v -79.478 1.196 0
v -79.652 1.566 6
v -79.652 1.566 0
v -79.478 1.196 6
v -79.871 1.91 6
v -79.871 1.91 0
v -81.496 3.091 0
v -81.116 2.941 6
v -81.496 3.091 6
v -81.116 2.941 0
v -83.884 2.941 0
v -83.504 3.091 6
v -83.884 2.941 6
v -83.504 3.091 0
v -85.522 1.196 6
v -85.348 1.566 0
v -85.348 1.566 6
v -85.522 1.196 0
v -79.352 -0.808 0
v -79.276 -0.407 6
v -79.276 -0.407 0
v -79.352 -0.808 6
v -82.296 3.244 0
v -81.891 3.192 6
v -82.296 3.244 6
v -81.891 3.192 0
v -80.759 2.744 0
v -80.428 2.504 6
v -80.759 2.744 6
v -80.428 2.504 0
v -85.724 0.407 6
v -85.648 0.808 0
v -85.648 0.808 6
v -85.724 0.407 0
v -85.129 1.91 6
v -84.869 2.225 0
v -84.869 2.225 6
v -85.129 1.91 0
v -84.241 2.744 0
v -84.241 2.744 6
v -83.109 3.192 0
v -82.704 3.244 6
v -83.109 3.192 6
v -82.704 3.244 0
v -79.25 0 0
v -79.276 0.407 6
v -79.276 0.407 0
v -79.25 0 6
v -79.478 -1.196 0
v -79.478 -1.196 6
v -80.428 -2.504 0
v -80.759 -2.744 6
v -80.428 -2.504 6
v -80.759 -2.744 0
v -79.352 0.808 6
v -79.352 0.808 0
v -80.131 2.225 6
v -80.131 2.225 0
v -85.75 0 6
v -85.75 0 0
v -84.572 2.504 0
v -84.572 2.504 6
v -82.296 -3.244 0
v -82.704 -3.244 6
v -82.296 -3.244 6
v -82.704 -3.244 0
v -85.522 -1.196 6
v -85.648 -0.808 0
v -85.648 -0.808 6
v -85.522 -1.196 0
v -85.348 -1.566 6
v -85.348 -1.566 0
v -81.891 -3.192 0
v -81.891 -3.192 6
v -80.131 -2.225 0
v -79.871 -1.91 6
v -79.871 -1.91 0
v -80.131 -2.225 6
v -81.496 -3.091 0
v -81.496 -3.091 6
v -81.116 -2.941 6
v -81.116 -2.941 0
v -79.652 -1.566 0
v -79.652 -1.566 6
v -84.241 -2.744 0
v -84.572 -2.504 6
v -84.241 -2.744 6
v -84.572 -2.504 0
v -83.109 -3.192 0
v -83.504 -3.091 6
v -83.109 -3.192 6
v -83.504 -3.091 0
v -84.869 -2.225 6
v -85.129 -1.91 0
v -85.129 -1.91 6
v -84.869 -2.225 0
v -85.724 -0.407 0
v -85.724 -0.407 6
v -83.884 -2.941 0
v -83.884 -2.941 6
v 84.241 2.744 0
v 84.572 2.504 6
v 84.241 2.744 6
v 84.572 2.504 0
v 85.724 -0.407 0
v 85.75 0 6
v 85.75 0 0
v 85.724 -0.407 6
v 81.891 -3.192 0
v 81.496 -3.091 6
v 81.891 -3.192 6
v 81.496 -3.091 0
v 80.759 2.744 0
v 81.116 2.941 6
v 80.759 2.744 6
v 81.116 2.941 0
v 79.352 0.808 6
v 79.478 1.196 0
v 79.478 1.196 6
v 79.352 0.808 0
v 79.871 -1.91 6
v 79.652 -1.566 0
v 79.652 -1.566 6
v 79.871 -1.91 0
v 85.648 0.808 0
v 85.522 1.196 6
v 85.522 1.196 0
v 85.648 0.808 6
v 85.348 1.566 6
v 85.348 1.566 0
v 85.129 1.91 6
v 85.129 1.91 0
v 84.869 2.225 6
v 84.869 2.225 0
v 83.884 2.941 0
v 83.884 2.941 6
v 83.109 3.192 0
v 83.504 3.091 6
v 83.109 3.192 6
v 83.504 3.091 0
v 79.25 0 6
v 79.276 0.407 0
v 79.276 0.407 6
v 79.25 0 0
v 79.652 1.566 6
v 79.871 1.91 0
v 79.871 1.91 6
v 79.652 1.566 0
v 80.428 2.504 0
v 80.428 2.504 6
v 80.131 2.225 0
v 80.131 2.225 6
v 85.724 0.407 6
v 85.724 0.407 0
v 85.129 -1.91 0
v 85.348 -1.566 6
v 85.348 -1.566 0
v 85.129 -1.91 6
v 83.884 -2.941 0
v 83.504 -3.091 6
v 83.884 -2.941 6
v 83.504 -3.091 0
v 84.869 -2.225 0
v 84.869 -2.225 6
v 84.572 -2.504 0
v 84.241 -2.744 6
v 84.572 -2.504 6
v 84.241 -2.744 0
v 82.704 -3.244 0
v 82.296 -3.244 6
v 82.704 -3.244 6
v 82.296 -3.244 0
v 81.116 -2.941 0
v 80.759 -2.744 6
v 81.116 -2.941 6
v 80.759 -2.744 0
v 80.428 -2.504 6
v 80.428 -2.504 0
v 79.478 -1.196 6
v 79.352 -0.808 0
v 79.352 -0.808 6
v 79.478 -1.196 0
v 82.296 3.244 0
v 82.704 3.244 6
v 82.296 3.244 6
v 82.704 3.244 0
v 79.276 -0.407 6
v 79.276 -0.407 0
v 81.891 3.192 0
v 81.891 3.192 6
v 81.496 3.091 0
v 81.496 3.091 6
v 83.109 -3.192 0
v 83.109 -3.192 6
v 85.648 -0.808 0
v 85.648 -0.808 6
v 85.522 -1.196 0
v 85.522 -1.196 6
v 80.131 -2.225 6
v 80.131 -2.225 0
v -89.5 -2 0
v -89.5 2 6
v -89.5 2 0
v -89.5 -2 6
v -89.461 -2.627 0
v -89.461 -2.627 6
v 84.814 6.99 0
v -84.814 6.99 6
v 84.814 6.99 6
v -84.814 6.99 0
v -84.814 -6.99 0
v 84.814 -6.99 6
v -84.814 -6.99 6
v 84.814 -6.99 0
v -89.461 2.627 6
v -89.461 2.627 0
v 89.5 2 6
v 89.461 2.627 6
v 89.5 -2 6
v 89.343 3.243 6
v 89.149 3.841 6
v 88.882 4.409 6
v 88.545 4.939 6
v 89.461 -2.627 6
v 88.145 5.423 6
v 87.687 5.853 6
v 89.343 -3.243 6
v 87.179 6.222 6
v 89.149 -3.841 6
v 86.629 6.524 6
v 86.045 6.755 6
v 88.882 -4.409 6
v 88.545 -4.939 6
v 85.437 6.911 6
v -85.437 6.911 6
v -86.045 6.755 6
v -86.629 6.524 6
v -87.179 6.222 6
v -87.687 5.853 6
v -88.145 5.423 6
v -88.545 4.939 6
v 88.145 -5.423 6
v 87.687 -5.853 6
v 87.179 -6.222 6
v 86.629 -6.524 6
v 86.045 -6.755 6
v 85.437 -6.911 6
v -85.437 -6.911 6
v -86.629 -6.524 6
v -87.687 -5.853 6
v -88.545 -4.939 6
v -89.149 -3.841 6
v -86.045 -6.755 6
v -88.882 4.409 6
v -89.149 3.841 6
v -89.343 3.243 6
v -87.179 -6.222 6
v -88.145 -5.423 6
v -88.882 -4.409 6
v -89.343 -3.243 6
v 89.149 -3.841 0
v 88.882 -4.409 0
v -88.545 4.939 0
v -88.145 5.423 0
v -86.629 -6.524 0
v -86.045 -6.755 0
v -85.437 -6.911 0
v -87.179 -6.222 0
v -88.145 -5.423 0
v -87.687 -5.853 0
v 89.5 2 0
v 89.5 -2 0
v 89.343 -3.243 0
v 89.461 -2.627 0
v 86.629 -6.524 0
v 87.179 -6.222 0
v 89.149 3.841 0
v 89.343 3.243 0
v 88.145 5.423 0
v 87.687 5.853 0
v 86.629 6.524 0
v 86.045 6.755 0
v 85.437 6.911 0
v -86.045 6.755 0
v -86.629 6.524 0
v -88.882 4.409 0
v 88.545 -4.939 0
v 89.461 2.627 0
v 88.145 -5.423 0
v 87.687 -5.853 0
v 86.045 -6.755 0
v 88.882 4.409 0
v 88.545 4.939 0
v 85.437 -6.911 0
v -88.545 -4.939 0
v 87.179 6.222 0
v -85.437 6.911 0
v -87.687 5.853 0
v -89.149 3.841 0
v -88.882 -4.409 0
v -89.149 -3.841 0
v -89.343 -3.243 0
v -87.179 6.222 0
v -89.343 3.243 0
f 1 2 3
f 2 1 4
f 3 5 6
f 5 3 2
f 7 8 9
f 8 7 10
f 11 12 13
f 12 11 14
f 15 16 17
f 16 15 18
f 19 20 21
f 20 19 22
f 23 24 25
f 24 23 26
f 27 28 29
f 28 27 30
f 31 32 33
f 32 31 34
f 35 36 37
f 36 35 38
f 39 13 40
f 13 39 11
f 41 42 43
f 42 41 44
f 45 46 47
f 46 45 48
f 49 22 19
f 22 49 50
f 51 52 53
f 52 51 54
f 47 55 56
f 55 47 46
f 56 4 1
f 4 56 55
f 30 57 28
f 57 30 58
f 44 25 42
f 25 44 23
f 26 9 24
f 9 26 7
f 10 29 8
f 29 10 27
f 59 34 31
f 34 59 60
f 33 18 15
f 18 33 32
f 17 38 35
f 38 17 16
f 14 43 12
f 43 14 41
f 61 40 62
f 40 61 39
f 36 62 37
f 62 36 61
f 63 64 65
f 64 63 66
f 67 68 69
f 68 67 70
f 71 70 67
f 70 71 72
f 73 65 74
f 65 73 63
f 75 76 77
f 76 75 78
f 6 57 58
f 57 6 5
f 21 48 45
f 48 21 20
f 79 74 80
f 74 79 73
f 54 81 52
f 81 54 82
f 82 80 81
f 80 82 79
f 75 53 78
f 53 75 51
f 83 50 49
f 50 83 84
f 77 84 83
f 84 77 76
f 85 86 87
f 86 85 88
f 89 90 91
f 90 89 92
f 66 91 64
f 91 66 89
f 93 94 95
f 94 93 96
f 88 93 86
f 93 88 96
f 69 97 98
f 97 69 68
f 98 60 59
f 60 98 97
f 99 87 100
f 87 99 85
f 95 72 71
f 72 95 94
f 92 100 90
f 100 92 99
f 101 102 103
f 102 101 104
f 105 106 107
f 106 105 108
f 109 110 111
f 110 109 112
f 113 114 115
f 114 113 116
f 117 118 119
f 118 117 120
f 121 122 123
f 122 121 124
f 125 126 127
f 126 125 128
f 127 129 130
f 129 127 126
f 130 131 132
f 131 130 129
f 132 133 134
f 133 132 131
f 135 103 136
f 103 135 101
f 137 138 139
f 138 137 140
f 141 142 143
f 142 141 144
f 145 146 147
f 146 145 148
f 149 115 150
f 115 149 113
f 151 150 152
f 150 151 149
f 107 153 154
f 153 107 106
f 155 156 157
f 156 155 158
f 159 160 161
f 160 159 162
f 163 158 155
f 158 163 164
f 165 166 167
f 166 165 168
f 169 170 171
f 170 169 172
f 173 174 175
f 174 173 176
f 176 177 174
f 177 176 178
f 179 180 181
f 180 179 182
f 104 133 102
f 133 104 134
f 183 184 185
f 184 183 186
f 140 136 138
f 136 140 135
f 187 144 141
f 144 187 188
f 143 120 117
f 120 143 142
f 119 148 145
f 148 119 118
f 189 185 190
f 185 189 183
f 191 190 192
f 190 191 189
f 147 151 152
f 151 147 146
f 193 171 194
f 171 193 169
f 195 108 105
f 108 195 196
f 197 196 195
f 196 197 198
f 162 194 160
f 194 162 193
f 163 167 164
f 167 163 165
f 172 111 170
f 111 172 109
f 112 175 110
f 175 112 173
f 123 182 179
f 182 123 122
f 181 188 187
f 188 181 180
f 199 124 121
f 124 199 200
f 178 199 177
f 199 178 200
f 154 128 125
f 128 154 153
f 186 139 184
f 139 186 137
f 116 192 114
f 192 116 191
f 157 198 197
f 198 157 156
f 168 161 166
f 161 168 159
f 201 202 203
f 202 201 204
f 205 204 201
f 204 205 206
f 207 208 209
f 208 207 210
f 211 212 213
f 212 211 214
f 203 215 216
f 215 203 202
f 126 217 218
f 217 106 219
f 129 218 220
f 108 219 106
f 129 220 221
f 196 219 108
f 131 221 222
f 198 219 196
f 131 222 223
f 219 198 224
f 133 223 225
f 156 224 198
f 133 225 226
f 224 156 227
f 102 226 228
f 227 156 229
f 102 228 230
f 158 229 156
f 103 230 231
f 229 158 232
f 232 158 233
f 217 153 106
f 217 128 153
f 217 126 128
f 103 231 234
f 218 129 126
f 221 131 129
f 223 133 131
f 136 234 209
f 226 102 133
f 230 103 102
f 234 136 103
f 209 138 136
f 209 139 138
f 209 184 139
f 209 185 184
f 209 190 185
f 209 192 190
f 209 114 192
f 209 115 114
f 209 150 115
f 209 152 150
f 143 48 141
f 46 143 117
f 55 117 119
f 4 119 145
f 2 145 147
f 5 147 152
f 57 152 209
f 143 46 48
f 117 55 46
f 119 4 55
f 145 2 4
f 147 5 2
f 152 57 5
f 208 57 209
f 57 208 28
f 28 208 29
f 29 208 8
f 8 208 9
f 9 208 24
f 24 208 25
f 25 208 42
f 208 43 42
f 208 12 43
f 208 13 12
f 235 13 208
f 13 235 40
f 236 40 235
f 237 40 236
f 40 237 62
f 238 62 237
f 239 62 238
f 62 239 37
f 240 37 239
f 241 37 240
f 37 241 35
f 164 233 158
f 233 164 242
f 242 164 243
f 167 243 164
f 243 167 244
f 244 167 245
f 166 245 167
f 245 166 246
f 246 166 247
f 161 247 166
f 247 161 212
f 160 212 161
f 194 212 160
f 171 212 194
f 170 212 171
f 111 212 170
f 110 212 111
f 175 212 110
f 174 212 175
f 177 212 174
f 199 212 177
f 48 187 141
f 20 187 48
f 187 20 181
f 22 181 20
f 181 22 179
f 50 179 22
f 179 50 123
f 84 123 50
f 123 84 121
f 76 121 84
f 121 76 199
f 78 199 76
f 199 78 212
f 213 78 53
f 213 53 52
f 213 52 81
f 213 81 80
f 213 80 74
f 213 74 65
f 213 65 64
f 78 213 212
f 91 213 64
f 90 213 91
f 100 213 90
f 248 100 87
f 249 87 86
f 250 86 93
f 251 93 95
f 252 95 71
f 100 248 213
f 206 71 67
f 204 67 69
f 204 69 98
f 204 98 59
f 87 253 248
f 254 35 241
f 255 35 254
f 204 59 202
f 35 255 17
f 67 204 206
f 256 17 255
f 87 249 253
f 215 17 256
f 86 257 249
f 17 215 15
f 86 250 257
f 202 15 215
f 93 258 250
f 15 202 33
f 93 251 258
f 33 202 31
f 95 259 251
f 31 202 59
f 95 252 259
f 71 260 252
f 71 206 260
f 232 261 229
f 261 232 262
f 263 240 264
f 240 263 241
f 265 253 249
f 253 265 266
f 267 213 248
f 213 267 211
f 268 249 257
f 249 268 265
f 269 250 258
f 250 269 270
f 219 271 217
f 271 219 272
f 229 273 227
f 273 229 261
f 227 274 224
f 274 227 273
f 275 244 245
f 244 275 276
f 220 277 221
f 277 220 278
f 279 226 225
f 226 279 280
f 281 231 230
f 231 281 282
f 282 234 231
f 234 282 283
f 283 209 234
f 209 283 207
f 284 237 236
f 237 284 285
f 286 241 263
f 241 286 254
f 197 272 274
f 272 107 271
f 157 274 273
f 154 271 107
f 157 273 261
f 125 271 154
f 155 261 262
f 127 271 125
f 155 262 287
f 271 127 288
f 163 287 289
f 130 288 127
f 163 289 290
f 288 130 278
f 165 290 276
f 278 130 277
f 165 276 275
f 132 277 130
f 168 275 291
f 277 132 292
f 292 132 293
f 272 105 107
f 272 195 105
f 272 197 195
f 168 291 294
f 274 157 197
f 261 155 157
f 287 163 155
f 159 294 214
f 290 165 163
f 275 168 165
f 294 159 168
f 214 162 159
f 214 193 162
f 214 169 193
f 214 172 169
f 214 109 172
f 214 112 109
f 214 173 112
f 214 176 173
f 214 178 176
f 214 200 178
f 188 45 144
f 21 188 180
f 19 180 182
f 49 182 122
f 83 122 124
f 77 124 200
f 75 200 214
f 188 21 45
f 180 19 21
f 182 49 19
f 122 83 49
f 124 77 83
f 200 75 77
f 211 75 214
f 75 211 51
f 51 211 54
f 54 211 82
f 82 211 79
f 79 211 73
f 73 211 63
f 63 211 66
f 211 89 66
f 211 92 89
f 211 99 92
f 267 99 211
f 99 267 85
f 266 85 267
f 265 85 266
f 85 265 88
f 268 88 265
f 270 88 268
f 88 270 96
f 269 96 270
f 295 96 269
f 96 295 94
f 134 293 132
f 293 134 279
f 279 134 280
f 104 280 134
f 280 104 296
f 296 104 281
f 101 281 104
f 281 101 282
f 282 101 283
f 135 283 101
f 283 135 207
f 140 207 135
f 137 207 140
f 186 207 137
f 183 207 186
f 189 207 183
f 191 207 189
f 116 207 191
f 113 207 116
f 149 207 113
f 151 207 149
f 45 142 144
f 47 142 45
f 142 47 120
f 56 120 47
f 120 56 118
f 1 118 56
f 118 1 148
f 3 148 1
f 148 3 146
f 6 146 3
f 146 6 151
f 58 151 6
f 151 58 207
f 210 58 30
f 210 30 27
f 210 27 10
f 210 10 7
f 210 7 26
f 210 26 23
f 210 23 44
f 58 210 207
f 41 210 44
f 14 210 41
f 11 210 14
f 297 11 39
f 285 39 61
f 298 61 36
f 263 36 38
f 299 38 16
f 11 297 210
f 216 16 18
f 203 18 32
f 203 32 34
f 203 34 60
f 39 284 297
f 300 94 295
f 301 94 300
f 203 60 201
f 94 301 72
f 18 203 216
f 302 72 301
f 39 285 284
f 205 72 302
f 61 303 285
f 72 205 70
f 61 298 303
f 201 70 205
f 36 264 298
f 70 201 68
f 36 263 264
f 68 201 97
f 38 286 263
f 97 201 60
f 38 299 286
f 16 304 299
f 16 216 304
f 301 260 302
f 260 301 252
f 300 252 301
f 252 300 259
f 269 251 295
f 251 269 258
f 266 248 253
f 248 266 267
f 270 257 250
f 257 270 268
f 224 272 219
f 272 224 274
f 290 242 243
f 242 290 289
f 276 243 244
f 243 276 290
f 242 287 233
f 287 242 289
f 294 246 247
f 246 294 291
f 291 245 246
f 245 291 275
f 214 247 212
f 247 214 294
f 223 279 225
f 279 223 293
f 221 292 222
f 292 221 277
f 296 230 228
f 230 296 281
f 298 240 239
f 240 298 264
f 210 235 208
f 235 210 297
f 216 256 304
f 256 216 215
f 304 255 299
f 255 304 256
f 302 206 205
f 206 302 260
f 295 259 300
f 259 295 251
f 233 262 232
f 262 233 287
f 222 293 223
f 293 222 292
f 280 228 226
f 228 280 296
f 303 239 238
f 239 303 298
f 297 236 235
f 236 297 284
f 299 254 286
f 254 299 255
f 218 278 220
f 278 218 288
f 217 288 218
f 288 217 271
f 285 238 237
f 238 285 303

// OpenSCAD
$fn = 50;


difference() {
	union() {
		hull() {
			translate(v = [-84.5000000000, 2.0000000000, 0]) {
				cylinder(h = 6, r = 5);
			}
			translate(v = [84.5000000000, 2.0000000000, 0]) {
				cylinder(h = 6, r = 5);
			}
			translate(v = [-84.5000000000, -2.0000000000, 0]) {
				cylinder(h = 6, r = 5);
			}
			translate(v = [84.5000000000, -2.0000000000, 0]) {
				cylinder(h = 6, r = 5);
			}
		}
	}
	union() {
		translate(v = [-82.5000000000, 0.0000000000, 0]) {
			cylinder(h = 6, r = 3.2500000000);
		}
		translate(v = [82.5000000000, 0.0000000000, 0]) {
			cylinder(h = 6, r = 3.2500000000);
		}
		translate(v = [-82.5000000000, 0.0000000000, 0]) {
			cylinder(h = 6, r = 1.8000000000);
		}
		translate(v = [82.5000000000, 0.0000000000, 0]) {
			cylinder(h = 6, r = 1.8000000000);
		}
		translate(v = [-82.5000000000, 0.0000000000, 0]) {
			cylinder(h = 6, r = 1.8000000000);
		}
		translate(v = [82.5000000000, 0.0000000000, 0]) {
			cylinder(h = 6, r = 1.8000000000);
		}
		translate(v = [-82.5000000000, 0.0000000000, 0]) {
			cylinder(h = 6, r = 1.8000000000);
		}
		translate(v = [82.5000000000, 0.0000000000, 0]) {
			cylinder(h = 6, r = 1.8000000000);
		}
	}
}
